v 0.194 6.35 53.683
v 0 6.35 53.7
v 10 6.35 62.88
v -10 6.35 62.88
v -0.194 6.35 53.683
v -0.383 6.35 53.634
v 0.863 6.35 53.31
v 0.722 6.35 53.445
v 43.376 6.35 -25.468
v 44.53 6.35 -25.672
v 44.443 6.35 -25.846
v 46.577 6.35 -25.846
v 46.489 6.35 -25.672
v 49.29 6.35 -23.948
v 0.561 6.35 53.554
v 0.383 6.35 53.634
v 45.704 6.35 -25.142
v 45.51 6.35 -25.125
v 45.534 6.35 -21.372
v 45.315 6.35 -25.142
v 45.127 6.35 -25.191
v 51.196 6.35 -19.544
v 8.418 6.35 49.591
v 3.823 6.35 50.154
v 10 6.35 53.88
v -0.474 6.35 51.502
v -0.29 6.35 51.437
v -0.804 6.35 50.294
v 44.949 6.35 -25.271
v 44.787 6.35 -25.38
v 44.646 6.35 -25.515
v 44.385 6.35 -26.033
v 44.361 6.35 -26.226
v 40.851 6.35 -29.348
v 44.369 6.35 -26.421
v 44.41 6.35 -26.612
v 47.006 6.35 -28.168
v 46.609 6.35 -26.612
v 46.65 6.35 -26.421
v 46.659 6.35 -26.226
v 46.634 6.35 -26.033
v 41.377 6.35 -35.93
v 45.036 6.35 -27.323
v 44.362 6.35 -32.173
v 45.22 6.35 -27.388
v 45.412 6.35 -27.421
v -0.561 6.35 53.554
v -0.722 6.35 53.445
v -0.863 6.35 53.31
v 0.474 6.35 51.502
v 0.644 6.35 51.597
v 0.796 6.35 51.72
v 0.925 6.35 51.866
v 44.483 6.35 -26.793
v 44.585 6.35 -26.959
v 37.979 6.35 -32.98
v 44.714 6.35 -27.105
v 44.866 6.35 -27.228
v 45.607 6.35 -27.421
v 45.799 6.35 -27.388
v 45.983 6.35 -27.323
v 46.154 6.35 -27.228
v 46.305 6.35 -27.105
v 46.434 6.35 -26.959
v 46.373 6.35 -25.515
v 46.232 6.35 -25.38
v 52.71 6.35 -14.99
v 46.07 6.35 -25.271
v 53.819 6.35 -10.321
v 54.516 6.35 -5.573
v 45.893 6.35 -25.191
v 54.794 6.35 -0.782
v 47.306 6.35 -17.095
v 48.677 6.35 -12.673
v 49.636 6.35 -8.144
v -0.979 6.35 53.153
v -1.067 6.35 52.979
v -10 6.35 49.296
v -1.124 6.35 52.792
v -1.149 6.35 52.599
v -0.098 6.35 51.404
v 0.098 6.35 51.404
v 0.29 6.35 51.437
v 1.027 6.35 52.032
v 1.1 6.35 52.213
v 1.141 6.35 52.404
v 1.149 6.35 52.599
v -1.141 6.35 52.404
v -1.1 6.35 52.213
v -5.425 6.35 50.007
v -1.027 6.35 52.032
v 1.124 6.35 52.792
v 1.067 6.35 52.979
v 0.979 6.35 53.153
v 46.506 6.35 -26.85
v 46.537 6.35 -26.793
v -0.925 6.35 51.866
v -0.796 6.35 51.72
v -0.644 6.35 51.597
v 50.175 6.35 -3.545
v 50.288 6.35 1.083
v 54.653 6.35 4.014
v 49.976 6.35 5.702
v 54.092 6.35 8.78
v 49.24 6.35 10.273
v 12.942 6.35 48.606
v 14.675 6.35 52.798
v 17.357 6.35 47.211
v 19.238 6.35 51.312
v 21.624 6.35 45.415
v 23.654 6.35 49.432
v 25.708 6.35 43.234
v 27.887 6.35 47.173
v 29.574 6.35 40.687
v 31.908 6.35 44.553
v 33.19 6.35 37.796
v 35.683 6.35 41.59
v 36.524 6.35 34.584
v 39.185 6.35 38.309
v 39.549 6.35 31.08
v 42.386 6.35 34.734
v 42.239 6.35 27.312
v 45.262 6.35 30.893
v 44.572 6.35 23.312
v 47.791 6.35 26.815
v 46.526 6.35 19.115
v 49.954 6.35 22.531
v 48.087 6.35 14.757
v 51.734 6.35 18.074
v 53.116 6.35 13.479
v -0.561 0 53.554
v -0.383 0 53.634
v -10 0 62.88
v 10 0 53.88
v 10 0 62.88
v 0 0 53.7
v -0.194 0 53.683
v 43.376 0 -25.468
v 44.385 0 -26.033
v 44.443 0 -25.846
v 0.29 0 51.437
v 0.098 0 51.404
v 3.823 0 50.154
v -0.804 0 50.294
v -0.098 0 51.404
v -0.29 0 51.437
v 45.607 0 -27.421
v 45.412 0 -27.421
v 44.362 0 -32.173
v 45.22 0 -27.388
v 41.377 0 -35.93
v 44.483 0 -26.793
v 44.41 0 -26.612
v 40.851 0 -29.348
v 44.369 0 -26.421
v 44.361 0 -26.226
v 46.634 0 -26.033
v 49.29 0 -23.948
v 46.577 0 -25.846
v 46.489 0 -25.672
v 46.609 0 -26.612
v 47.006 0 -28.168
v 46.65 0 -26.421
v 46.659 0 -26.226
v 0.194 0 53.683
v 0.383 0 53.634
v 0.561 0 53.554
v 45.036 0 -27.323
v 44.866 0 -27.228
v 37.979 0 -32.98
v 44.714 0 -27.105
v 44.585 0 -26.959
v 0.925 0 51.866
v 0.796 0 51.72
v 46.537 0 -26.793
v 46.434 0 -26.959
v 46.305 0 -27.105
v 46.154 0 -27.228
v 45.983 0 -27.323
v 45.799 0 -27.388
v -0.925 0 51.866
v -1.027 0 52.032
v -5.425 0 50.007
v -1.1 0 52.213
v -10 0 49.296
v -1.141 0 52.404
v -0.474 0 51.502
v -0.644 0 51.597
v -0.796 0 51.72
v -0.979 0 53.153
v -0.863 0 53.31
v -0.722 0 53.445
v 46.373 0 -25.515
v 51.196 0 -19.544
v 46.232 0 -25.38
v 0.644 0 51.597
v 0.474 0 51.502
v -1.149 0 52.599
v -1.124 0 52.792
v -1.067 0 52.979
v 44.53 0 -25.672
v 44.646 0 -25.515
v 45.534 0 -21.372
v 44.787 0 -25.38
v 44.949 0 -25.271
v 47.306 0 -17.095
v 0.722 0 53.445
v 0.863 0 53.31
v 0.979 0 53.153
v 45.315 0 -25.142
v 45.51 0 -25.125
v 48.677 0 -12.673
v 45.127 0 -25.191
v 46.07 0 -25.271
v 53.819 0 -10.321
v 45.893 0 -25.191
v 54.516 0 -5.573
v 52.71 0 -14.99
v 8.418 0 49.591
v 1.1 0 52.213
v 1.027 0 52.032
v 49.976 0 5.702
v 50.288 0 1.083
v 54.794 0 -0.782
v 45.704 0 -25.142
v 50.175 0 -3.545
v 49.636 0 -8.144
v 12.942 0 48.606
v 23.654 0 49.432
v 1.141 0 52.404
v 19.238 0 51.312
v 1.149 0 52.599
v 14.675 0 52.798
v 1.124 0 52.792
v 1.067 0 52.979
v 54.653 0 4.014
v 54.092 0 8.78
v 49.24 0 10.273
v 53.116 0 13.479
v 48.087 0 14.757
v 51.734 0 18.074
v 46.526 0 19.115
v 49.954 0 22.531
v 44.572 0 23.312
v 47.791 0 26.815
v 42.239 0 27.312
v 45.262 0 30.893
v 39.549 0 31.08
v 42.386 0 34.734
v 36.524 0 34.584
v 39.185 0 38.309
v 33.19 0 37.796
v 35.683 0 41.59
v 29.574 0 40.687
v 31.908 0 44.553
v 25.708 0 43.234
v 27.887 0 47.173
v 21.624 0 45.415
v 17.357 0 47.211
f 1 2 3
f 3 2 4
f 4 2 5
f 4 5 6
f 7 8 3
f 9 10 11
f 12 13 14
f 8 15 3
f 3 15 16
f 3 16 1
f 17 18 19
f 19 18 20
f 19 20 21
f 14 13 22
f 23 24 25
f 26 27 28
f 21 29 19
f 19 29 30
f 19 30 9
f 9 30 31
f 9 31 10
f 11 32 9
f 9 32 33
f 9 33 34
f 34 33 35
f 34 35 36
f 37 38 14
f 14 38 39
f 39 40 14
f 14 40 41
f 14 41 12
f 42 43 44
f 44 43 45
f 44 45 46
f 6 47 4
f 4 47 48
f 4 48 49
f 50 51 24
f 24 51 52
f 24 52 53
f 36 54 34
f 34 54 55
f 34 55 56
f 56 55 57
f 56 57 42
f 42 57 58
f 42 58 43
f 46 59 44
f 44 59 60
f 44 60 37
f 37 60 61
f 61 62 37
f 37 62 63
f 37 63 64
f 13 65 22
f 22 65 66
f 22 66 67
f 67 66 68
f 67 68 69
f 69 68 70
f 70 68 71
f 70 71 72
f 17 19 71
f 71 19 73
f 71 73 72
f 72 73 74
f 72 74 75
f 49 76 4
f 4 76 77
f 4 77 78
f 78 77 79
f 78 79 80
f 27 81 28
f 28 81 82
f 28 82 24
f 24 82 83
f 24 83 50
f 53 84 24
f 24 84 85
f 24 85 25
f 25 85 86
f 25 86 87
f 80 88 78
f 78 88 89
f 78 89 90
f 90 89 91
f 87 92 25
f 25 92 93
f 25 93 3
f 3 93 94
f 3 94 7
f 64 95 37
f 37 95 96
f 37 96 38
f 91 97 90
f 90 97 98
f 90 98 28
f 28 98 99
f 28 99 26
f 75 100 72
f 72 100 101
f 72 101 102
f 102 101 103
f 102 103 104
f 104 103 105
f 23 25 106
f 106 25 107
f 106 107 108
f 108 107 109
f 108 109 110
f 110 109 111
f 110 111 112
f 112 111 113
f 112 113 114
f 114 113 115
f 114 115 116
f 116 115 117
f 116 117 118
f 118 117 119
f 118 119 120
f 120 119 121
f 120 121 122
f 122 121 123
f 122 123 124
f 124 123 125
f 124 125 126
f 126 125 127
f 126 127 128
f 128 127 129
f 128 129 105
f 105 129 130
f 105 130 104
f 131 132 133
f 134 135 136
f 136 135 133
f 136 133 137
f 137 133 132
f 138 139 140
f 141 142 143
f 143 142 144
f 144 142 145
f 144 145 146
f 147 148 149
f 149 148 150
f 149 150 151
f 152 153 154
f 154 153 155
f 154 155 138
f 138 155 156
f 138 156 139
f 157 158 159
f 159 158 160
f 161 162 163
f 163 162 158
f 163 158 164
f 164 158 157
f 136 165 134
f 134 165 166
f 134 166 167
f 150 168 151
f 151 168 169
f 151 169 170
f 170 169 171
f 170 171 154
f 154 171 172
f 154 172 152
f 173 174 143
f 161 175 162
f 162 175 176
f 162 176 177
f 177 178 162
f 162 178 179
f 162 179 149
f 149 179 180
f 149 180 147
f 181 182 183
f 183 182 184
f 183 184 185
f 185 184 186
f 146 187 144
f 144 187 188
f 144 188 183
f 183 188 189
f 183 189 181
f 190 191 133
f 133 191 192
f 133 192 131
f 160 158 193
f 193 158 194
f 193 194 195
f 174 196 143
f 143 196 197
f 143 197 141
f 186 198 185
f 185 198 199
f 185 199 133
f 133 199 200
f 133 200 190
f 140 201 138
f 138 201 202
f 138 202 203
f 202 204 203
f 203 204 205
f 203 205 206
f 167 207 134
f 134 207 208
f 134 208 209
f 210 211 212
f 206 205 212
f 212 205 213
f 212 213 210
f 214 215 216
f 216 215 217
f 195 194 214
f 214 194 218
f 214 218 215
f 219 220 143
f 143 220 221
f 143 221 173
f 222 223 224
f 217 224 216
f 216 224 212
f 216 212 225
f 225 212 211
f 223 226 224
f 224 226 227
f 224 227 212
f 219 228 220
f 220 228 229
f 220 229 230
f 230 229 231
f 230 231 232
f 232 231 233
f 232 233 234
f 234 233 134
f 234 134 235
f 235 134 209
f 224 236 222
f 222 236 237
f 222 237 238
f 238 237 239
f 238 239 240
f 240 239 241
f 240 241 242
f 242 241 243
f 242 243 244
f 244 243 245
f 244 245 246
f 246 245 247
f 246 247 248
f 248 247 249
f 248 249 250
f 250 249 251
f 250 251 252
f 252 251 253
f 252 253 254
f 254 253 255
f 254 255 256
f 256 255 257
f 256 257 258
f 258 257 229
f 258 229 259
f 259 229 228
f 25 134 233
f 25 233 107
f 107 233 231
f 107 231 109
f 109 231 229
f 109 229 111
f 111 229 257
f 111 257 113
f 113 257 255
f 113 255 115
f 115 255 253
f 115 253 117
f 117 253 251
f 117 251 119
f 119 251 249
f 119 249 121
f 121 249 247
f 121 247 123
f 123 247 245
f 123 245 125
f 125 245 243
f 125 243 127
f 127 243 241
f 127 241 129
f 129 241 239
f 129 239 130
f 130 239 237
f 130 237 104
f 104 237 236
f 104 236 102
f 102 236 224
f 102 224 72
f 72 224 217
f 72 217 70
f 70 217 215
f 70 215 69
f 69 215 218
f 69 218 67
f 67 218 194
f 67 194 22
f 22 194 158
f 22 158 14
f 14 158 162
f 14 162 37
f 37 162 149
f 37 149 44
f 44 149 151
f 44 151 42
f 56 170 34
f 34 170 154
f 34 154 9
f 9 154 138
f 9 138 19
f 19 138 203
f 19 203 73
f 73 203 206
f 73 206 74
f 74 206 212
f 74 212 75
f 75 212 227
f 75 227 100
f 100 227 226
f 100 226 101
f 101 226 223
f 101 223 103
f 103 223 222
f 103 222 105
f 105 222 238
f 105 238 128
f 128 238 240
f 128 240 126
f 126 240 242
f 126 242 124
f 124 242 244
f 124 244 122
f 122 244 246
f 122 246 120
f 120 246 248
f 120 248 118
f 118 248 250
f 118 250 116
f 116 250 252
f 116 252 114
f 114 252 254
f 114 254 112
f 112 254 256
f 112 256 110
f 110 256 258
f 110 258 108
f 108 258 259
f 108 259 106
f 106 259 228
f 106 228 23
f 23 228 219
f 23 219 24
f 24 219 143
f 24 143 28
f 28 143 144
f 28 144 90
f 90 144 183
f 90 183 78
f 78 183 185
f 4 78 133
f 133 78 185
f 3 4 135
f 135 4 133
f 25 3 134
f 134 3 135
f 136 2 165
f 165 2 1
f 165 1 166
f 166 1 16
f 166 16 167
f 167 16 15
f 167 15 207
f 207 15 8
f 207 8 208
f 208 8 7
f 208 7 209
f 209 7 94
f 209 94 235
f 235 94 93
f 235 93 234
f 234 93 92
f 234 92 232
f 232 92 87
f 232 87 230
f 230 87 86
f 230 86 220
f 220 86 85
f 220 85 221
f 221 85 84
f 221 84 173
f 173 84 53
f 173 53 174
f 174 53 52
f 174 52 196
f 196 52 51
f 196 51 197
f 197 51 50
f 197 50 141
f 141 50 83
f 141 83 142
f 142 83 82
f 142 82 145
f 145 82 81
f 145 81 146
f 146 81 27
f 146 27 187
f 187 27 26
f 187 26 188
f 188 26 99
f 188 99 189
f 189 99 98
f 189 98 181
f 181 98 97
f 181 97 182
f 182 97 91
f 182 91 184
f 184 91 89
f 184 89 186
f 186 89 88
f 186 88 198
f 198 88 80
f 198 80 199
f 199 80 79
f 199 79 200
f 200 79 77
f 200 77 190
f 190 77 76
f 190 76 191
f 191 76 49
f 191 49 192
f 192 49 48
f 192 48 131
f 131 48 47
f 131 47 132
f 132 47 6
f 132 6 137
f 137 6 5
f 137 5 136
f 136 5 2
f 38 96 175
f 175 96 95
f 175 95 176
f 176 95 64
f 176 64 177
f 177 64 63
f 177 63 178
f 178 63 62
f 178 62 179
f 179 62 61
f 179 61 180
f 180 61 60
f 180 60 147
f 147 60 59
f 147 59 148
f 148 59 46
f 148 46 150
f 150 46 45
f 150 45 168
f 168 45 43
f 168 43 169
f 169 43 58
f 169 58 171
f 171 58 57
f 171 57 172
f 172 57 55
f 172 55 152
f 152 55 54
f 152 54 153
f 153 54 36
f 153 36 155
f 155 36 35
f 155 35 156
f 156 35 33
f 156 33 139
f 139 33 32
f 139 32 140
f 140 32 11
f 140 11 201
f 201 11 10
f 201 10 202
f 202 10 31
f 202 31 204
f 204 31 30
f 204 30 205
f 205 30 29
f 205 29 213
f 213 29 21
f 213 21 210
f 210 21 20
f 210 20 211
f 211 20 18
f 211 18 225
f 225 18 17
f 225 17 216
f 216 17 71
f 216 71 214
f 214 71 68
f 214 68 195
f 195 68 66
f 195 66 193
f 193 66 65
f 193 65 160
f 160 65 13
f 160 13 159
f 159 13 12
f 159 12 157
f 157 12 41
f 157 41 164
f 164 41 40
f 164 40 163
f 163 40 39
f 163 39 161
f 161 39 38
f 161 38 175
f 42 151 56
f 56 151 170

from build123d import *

# Parameters (mm, degrees)
SKETCH1_R           = 50.3
BOSS_EXTRUDE1_DEPTH = 6.35
CUT_EXTRUDE1_REACH  = 85.65
SKETCH2_R           = 1.15
CIRPATTERN1_COUNT   = 3
CUT_EXTRUDE2_REACH  = 85.65
SKETCH3_R           = 1.15


with BuildPart() as part:
    # Sketch1 → Boss-Extrude1 (new body)
    with BuildSketch(Plane(origin=(0, 0, 0), x_dir=(1, 0, 0), z_dir=(0, 1, 0))):
        with BuildLine():
            Line((-10, -53.87986637), (-10, -62.87986637))
            Line((-10, -62.87986637), (10, -62.87986637))
            Line((10, -62.87986637), (10, -53.87986637))
            ThreePointArc((10, -53.87986637), (0, 54.8), (-10, -53.87986637))
        make_face()
        with Locations(Location((0, 0, 0), (0, 0, 270))):
            Circle(SKETCH1_R, mode=Mode.SUBTRACT)
    extrude(amount=BOSS_EXTRUDE1_DEPTH)

    # Sketch2 → Cut-Extrude1 (cut, up to next)
    with BuildSketch(Plane(origin=(0, 6.35, 0), x_dir=(1, 0, 0), z_dir=(0, 1, 0)), mode=Mode.PRIVATE) as cut_extrude1_sk1:
        with Locations(Location((0, -52.55, 0), (0, 0, 270))):
            Circle(SKETCH2_R)
    cut_extrude1_tool1 = extrude(cut_extrude1_sk1.sketch, amount=-CUT_EXTRUDE1_REACH, mode=Mode.PRIVATE) & part.part
    cut_extrude1 = cut_extrude1_tool1.solids().sort_by_distance((0, 6.35, 52.55))[0]
    add(cut_extrude1, mode=Mode.SUBTRACT)

    # CirPattern1: Cut-Extrude1 ×3 about axis
    cirpattern1_axis = Axis((0, 0, 0), (0, 1, 0))
    for i in range(1, CIRPATTERN1_COUNT):
        add(cut_extrude1.rotate(cirpattern1_axis, i * 360 / CIRPATTERN1_COUNT), mode=Mode.SUBTRACT)

    # Sketch3 → Cut-Extrude2 (cut, up to next)
    with BuildSketch(Plane(origin=(0, 6.35, 0), x_dir=(1, 0, 0), z_dir=(0, 1, 0)), mode=Mode.PRIVATE) as cut_extrude2_sk1:
        with BuildLine():
            ThreePointArc((41.376904985, 35.930373417), (-47.56676712, 27.21107616), (-10, -53.87986637))
            Line((-10, -53.87986637), (-10, -49.295943038))
            ThreePointArc((-10, -49.295943038), (-43.451541655, 25.338775184), (37.979166437, 32.979886548))
            Line((37.979166437, 32.979886548), (41.376904985, 35.930373417))
        make_face()
        with Locations((-45.509634969, 26.275)):
            Circle(SKETCH3_R, mode=Mode.SUBTRACT)
    cut_extrude2_tool1 = extrude(cut_extrude2_sk1.sketch, amount=-CUT_EXTRUDE2_REACH, mode=Mode.PRIVATE) & part.part
    add(cut_extrude2_tool1.solids().sort_by_distance((-43.576908, 6.35, -25.411882))[0], mode=Mode.SUBTRACT)


solid = part.part
